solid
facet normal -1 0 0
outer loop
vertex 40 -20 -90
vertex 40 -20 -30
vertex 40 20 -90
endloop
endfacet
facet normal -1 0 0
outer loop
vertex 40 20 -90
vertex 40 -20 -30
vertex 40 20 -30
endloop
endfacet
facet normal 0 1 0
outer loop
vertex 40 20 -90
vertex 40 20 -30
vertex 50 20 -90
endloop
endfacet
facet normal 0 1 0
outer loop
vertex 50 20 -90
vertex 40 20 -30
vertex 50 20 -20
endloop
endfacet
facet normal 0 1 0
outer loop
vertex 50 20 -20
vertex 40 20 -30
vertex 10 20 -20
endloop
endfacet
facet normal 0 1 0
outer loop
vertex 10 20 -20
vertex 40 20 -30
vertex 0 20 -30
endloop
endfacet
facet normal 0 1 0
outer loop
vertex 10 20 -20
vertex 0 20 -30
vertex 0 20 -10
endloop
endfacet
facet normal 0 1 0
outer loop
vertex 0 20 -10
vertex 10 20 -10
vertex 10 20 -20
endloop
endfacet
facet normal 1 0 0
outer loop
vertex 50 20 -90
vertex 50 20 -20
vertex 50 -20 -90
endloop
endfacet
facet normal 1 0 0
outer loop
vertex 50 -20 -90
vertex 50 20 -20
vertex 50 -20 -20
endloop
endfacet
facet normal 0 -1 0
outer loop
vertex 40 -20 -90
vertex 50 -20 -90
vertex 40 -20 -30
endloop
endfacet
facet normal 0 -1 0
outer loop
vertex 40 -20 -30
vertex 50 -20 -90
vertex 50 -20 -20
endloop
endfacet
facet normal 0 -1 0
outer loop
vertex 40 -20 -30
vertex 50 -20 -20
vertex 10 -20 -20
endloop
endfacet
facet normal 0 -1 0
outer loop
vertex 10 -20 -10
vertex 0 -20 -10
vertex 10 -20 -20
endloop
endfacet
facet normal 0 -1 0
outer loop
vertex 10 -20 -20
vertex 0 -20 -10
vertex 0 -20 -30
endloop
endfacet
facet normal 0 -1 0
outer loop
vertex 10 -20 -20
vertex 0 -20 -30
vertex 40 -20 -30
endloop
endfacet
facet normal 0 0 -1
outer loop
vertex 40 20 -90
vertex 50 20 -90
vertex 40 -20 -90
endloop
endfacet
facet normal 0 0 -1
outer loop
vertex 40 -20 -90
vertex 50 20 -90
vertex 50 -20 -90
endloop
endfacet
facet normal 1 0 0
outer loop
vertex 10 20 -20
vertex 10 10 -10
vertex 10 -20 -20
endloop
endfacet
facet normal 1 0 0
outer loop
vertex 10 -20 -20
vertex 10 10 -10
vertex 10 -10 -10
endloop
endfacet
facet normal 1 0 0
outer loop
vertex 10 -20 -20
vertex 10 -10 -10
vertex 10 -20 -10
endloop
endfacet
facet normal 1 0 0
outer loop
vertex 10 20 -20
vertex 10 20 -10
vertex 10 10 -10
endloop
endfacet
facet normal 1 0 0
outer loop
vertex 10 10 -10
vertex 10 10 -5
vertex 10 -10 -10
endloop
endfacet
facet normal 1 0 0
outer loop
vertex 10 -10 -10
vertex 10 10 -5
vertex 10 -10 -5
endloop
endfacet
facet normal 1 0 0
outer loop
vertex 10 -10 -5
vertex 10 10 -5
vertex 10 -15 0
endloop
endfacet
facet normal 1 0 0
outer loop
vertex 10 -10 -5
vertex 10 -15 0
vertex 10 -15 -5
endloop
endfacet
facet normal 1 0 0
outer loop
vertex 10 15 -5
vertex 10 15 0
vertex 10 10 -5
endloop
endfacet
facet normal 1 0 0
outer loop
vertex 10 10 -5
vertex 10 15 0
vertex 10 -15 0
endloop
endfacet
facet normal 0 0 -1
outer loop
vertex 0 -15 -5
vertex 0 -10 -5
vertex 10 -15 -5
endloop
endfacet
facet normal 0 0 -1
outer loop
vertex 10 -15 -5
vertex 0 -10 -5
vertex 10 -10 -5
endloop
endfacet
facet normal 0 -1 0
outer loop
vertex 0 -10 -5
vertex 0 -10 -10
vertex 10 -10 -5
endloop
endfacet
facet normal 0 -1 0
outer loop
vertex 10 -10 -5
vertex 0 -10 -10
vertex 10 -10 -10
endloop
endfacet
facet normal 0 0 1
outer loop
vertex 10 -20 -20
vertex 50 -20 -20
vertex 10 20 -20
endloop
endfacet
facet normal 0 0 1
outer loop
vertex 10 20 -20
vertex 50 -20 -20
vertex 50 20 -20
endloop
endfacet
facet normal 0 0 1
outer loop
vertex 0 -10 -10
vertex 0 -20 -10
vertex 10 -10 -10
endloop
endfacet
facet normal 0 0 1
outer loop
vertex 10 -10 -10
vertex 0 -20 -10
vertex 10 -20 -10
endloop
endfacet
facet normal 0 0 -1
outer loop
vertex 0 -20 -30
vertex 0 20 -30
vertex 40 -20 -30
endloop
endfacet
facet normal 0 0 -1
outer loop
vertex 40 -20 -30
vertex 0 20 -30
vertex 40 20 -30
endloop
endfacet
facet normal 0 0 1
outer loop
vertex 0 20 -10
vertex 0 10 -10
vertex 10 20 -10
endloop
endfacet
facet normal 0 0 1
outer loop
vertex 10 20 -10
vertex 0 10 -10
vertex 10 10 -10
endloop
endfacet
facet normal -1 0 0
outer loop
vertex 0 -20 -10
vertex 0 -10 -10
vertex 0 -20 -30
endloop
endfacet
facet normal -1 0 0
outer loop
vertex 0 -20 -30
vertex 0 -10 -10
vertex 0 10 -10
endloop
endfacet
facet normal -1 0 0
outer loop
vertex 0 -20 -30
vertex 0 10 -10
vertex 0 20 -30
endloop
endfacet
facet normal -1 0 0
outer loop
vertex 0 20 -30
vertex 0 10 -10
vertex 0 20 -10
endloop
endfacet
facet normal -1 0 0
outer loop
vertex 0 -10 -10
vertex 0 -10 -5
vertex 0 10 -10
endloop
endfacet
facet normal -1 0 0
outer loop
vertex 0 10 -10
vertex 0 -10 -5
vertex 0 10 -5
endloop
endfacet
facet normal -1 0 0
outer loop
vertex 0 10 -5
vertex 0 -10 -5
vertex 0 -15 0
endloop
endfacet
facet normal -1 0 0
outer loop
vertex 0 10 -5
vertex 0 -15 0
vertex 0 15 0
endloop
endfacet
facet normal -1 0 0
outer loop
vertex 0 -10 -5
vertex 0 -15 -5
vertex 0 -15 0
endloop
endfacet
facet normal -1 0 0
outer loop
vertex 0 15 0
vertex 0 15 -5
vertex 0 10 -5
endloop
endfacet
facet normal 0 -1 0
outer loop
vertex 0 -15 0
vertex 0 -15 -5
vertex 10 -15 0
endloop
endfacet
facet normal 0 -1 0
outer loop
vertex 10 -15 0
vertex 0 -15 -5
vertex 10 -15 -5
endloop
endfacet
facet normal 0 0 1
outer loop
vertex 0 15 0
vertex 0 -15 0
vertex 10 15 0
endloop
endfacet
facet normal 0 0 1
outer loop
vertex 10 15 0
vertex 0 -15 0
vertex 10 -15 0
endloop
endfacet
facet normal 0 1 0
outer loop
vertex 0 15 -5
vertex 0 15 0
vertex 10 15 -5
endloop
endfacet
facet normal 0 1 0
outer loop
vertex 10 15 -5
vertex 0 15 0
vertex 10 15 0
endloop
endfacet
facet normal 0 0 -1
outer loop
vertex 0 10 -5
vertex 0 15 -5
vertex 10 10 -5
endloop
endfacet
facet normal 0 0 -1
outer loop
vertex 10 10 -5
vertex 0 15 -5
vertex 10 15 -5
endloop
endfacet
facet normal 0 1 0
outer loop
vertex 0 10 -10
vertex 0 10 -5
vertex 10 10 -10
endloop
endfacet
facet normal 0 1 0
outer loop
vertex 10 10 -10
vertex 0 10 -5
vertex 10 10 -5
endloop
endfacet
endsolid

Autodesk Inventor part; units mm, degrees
ref_plane "YZ Plane" through (0, 0, 0) normal (1, 0, 0) x (0, 1, 0)
ref_plane "XZ Plane" through (0, 0, 0) normal (0, 1, 0) x (-1, 0, 0)
ref_plane "XY Plane" through (0, 0, 0) normal (0, 0, 1) x (1, 0, 0)
sketch "Skizze1" plane through (0, 0, 0) normal (1, 0, 0) x (0, 1, 0)
  line L0 (-10, -10) -> (-10, -5)
  line L1 (-10, -5) -> (-15, -5)
  line L2 (-15, -5) -> (-15, 0)
  line L3 (-15, 0) -> (15, 0)
  line L4 (15, 0) -> (15, -5)
  line L5 (15, -5) -> (10, -5)
  line L6 (10, -5) -> (10, -10)
  line L7 (10, -10) -> (20, -10)
  line L8 (20, -10) -> (20, -30)
  line L9 (20, -30) -> (-20, -30)
  line L10 (-20, -30) -> (-20, -10)
  line L11 (-20, -10) -> (-10, -10)
  line L12 (0, -36) -> (0, 6) projected
  point P0 (0, 0)
  dimension "d0" = 30
  dimension "d1" = 20
  dimension "d2" = 5
  dimension "d3" = 5
  dimension "d4" = 20
  dimension "d5" = 90
  dimension "d6" = 40
extrude "Extrusion1" add sketch "Skizze1" along normal blind 10
sketch "Skizze3" plane through (0, 20, -10) normal (0, 1, 0) x (1, 0, 0)
  line L0 (0, 0) -> (0, 20) projected
  line L1 (0, 20) -> (40, 20)
  line L2 (40, 20) -> (40, 80)
  line L3 (40, 80) -> (-10, 80)
  line L4 (-10, 80) -> (-10, 90)
  line L5 (-10, 90) -> (50, 90)
  line L6 (50, 90) -> (50, 10)
  line L7 (50, 10) -> (0, 10)
  point P0 (0, -10)
  dimension "d12" = 10
  dimension "d13" = 10
  dimension "d14" = 10
  dimension "d15" = 60
  dimension "d16" = 50
  dimension "d17" = 60
extrude "Extrusion3" add sketch "Skizze3" against normal up to surface (40 mm away)
sketch "Skizze4" plane through (50, 20, -100) normal (0, 0, -1) x (-1, 0, 0)
  arc A0 (53.3975, 30) -> (53.3975, -70) centre (140, -20) ccw
  arc A1 (62.0577, 25) -> (62.0577, -65) centre (140, -20) ccw
  line L0 (140, -20) -> (53.3975, -70)
  line L1 (140, -20) -> (53.3975, 30)
  line L2 (0, -40) -> (60, -40) projected
  line L3 (0, 0) -> (60, 0) projected
  line L4 (0, 0) -> (0, -40) projected
  point P0 (40, -20)
  point P1 (42.0204, 0)
  point P2 (52.2504, 0)
  point P3 (52.2504, -40)
  point P4 (42.0204, -40)
  dimension "d20" = 200
  dimension "d21" = 180
  dimension "d22" = 30
  dimension "d23" = 30
  dimension "d24" = 40
  dimension "d25" = 20
  dimension "d30" = 140
extrude "Extrusion4" add sketch "Skizze4" against normal up to surface (10 mm away) contours L1 A1 L3 A0 | L2 A1 L0 A0
sketch "Skizze5" plane through (40, -20, -90) normal (0, 0, 1) x (1, 0, 0)
  arc A0 (-42.2504, 40) -> (-52.0577, 65) centre (-130, 20) ccw projected
  circle A1 centre (-130, 20) radius 90
  point P0 (-40, 20)
  point P1 (-52.0577, 65)
  point P2 (-42.2504, 40)
extrude "Extrusion5" cut sketch "Skizze5" against normal up to surface (10 mm away)
sketch "Skizze6" plane through (40, -20, -90) normal (0, 0, 1) x (1, 0, 0)
  line L0 (-30, 0) -> (-30, 40) projected
  line L1 (-30, 0) -> (10, 0) projected
  line L2 (10, 40) -> (10, 0) projected
  line L3 (-30, 40) -> (10, 40) projected
  arc A0 (-52.0577, -25) -> (-52.0577, 65) centre (-130, 20) ccw projected
  line L4 (-43.3975, -30) -> (-52.0577, -25) projected
  arc A1 (-43.3975, -30) -> (-32.0204, 0) centre (-130, 20) ccw projected
  line L5 (-32.0204, 0) -> (0, 0) projected
  line L6 (0, 40) -> (0, 0) projected
  line L7 (-32.0204, 40) -> (0, 40) projected
  arc A2 (-32.0204, 40) -> (-43.3975, 70) centre (-130, 20) ccw projected
  line L8 (-52.0577, 65) -> (-43.3975, 70) projected
  point P0 (-40, 20)
  point P1 (-30, 0)
  point P2 (-30, 40)
extrude "Extrusion6" cut sketch "Skizze6" against normal through all
equation "\"d13\" = d12"
equation "\"d23\" = d22"
equation "\"d25\" = 0.5 * d24"
properties part number "Finger"
